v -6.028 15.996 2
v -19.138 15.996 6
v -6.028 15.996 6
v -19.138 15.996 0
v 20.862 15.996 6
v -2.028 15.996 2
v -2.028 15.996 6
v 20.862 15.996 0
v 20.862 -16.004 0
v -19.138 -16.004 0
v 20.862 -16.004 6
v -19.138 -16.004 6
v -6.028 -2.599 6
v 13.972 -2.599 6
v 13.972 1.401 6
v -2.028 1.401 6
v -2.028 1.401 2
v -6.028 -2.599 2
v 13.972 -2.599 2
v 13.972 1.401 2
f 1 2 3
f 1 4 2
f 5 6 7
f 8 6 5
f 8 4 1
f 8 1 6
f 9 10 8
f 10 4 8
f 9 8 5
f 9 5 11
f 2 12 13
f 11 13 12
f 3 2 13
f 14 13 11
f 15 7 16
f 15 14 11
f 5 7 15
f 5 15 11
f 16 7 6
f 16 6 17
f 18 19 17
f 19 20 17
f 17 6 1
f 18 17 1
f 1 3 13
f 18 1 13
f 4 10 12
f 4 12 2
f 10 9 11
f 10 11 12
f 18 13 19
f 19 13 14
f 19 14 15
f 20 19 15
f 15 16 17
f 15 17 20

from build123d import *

# Parameters (mm, degrees)
SKETCH_W     = 40
SKETCH_H     = 32
PAD_DEPTH    = 6
POCKET_DEPTH = 4


with BuildPart() as part:
    # Sketch → Pad (new body)
    with BuildSketch(Plane.XY):
        with Locations((0.861926, -0.003967)):
            Rectangle(SKETCH_W, SKETCH_H)
    extrude(amount=PAD_DEPTH)

    # Sketch001 → Pocket (cut)
    with BuildSketch(Plane.XY.offset(6)):
        Polygon((-6.02844, 15.996033), (-6.02844, -2.599419), (13.97156, -2.599419), (13.97156, 1.400581), (-2.02844, 1.400581), (-2.02844, 15.996033), align=None)
    extrude(amount=-POCKET_DEPTH, mode=Mode.SUBTRACT)


solid = part.part
